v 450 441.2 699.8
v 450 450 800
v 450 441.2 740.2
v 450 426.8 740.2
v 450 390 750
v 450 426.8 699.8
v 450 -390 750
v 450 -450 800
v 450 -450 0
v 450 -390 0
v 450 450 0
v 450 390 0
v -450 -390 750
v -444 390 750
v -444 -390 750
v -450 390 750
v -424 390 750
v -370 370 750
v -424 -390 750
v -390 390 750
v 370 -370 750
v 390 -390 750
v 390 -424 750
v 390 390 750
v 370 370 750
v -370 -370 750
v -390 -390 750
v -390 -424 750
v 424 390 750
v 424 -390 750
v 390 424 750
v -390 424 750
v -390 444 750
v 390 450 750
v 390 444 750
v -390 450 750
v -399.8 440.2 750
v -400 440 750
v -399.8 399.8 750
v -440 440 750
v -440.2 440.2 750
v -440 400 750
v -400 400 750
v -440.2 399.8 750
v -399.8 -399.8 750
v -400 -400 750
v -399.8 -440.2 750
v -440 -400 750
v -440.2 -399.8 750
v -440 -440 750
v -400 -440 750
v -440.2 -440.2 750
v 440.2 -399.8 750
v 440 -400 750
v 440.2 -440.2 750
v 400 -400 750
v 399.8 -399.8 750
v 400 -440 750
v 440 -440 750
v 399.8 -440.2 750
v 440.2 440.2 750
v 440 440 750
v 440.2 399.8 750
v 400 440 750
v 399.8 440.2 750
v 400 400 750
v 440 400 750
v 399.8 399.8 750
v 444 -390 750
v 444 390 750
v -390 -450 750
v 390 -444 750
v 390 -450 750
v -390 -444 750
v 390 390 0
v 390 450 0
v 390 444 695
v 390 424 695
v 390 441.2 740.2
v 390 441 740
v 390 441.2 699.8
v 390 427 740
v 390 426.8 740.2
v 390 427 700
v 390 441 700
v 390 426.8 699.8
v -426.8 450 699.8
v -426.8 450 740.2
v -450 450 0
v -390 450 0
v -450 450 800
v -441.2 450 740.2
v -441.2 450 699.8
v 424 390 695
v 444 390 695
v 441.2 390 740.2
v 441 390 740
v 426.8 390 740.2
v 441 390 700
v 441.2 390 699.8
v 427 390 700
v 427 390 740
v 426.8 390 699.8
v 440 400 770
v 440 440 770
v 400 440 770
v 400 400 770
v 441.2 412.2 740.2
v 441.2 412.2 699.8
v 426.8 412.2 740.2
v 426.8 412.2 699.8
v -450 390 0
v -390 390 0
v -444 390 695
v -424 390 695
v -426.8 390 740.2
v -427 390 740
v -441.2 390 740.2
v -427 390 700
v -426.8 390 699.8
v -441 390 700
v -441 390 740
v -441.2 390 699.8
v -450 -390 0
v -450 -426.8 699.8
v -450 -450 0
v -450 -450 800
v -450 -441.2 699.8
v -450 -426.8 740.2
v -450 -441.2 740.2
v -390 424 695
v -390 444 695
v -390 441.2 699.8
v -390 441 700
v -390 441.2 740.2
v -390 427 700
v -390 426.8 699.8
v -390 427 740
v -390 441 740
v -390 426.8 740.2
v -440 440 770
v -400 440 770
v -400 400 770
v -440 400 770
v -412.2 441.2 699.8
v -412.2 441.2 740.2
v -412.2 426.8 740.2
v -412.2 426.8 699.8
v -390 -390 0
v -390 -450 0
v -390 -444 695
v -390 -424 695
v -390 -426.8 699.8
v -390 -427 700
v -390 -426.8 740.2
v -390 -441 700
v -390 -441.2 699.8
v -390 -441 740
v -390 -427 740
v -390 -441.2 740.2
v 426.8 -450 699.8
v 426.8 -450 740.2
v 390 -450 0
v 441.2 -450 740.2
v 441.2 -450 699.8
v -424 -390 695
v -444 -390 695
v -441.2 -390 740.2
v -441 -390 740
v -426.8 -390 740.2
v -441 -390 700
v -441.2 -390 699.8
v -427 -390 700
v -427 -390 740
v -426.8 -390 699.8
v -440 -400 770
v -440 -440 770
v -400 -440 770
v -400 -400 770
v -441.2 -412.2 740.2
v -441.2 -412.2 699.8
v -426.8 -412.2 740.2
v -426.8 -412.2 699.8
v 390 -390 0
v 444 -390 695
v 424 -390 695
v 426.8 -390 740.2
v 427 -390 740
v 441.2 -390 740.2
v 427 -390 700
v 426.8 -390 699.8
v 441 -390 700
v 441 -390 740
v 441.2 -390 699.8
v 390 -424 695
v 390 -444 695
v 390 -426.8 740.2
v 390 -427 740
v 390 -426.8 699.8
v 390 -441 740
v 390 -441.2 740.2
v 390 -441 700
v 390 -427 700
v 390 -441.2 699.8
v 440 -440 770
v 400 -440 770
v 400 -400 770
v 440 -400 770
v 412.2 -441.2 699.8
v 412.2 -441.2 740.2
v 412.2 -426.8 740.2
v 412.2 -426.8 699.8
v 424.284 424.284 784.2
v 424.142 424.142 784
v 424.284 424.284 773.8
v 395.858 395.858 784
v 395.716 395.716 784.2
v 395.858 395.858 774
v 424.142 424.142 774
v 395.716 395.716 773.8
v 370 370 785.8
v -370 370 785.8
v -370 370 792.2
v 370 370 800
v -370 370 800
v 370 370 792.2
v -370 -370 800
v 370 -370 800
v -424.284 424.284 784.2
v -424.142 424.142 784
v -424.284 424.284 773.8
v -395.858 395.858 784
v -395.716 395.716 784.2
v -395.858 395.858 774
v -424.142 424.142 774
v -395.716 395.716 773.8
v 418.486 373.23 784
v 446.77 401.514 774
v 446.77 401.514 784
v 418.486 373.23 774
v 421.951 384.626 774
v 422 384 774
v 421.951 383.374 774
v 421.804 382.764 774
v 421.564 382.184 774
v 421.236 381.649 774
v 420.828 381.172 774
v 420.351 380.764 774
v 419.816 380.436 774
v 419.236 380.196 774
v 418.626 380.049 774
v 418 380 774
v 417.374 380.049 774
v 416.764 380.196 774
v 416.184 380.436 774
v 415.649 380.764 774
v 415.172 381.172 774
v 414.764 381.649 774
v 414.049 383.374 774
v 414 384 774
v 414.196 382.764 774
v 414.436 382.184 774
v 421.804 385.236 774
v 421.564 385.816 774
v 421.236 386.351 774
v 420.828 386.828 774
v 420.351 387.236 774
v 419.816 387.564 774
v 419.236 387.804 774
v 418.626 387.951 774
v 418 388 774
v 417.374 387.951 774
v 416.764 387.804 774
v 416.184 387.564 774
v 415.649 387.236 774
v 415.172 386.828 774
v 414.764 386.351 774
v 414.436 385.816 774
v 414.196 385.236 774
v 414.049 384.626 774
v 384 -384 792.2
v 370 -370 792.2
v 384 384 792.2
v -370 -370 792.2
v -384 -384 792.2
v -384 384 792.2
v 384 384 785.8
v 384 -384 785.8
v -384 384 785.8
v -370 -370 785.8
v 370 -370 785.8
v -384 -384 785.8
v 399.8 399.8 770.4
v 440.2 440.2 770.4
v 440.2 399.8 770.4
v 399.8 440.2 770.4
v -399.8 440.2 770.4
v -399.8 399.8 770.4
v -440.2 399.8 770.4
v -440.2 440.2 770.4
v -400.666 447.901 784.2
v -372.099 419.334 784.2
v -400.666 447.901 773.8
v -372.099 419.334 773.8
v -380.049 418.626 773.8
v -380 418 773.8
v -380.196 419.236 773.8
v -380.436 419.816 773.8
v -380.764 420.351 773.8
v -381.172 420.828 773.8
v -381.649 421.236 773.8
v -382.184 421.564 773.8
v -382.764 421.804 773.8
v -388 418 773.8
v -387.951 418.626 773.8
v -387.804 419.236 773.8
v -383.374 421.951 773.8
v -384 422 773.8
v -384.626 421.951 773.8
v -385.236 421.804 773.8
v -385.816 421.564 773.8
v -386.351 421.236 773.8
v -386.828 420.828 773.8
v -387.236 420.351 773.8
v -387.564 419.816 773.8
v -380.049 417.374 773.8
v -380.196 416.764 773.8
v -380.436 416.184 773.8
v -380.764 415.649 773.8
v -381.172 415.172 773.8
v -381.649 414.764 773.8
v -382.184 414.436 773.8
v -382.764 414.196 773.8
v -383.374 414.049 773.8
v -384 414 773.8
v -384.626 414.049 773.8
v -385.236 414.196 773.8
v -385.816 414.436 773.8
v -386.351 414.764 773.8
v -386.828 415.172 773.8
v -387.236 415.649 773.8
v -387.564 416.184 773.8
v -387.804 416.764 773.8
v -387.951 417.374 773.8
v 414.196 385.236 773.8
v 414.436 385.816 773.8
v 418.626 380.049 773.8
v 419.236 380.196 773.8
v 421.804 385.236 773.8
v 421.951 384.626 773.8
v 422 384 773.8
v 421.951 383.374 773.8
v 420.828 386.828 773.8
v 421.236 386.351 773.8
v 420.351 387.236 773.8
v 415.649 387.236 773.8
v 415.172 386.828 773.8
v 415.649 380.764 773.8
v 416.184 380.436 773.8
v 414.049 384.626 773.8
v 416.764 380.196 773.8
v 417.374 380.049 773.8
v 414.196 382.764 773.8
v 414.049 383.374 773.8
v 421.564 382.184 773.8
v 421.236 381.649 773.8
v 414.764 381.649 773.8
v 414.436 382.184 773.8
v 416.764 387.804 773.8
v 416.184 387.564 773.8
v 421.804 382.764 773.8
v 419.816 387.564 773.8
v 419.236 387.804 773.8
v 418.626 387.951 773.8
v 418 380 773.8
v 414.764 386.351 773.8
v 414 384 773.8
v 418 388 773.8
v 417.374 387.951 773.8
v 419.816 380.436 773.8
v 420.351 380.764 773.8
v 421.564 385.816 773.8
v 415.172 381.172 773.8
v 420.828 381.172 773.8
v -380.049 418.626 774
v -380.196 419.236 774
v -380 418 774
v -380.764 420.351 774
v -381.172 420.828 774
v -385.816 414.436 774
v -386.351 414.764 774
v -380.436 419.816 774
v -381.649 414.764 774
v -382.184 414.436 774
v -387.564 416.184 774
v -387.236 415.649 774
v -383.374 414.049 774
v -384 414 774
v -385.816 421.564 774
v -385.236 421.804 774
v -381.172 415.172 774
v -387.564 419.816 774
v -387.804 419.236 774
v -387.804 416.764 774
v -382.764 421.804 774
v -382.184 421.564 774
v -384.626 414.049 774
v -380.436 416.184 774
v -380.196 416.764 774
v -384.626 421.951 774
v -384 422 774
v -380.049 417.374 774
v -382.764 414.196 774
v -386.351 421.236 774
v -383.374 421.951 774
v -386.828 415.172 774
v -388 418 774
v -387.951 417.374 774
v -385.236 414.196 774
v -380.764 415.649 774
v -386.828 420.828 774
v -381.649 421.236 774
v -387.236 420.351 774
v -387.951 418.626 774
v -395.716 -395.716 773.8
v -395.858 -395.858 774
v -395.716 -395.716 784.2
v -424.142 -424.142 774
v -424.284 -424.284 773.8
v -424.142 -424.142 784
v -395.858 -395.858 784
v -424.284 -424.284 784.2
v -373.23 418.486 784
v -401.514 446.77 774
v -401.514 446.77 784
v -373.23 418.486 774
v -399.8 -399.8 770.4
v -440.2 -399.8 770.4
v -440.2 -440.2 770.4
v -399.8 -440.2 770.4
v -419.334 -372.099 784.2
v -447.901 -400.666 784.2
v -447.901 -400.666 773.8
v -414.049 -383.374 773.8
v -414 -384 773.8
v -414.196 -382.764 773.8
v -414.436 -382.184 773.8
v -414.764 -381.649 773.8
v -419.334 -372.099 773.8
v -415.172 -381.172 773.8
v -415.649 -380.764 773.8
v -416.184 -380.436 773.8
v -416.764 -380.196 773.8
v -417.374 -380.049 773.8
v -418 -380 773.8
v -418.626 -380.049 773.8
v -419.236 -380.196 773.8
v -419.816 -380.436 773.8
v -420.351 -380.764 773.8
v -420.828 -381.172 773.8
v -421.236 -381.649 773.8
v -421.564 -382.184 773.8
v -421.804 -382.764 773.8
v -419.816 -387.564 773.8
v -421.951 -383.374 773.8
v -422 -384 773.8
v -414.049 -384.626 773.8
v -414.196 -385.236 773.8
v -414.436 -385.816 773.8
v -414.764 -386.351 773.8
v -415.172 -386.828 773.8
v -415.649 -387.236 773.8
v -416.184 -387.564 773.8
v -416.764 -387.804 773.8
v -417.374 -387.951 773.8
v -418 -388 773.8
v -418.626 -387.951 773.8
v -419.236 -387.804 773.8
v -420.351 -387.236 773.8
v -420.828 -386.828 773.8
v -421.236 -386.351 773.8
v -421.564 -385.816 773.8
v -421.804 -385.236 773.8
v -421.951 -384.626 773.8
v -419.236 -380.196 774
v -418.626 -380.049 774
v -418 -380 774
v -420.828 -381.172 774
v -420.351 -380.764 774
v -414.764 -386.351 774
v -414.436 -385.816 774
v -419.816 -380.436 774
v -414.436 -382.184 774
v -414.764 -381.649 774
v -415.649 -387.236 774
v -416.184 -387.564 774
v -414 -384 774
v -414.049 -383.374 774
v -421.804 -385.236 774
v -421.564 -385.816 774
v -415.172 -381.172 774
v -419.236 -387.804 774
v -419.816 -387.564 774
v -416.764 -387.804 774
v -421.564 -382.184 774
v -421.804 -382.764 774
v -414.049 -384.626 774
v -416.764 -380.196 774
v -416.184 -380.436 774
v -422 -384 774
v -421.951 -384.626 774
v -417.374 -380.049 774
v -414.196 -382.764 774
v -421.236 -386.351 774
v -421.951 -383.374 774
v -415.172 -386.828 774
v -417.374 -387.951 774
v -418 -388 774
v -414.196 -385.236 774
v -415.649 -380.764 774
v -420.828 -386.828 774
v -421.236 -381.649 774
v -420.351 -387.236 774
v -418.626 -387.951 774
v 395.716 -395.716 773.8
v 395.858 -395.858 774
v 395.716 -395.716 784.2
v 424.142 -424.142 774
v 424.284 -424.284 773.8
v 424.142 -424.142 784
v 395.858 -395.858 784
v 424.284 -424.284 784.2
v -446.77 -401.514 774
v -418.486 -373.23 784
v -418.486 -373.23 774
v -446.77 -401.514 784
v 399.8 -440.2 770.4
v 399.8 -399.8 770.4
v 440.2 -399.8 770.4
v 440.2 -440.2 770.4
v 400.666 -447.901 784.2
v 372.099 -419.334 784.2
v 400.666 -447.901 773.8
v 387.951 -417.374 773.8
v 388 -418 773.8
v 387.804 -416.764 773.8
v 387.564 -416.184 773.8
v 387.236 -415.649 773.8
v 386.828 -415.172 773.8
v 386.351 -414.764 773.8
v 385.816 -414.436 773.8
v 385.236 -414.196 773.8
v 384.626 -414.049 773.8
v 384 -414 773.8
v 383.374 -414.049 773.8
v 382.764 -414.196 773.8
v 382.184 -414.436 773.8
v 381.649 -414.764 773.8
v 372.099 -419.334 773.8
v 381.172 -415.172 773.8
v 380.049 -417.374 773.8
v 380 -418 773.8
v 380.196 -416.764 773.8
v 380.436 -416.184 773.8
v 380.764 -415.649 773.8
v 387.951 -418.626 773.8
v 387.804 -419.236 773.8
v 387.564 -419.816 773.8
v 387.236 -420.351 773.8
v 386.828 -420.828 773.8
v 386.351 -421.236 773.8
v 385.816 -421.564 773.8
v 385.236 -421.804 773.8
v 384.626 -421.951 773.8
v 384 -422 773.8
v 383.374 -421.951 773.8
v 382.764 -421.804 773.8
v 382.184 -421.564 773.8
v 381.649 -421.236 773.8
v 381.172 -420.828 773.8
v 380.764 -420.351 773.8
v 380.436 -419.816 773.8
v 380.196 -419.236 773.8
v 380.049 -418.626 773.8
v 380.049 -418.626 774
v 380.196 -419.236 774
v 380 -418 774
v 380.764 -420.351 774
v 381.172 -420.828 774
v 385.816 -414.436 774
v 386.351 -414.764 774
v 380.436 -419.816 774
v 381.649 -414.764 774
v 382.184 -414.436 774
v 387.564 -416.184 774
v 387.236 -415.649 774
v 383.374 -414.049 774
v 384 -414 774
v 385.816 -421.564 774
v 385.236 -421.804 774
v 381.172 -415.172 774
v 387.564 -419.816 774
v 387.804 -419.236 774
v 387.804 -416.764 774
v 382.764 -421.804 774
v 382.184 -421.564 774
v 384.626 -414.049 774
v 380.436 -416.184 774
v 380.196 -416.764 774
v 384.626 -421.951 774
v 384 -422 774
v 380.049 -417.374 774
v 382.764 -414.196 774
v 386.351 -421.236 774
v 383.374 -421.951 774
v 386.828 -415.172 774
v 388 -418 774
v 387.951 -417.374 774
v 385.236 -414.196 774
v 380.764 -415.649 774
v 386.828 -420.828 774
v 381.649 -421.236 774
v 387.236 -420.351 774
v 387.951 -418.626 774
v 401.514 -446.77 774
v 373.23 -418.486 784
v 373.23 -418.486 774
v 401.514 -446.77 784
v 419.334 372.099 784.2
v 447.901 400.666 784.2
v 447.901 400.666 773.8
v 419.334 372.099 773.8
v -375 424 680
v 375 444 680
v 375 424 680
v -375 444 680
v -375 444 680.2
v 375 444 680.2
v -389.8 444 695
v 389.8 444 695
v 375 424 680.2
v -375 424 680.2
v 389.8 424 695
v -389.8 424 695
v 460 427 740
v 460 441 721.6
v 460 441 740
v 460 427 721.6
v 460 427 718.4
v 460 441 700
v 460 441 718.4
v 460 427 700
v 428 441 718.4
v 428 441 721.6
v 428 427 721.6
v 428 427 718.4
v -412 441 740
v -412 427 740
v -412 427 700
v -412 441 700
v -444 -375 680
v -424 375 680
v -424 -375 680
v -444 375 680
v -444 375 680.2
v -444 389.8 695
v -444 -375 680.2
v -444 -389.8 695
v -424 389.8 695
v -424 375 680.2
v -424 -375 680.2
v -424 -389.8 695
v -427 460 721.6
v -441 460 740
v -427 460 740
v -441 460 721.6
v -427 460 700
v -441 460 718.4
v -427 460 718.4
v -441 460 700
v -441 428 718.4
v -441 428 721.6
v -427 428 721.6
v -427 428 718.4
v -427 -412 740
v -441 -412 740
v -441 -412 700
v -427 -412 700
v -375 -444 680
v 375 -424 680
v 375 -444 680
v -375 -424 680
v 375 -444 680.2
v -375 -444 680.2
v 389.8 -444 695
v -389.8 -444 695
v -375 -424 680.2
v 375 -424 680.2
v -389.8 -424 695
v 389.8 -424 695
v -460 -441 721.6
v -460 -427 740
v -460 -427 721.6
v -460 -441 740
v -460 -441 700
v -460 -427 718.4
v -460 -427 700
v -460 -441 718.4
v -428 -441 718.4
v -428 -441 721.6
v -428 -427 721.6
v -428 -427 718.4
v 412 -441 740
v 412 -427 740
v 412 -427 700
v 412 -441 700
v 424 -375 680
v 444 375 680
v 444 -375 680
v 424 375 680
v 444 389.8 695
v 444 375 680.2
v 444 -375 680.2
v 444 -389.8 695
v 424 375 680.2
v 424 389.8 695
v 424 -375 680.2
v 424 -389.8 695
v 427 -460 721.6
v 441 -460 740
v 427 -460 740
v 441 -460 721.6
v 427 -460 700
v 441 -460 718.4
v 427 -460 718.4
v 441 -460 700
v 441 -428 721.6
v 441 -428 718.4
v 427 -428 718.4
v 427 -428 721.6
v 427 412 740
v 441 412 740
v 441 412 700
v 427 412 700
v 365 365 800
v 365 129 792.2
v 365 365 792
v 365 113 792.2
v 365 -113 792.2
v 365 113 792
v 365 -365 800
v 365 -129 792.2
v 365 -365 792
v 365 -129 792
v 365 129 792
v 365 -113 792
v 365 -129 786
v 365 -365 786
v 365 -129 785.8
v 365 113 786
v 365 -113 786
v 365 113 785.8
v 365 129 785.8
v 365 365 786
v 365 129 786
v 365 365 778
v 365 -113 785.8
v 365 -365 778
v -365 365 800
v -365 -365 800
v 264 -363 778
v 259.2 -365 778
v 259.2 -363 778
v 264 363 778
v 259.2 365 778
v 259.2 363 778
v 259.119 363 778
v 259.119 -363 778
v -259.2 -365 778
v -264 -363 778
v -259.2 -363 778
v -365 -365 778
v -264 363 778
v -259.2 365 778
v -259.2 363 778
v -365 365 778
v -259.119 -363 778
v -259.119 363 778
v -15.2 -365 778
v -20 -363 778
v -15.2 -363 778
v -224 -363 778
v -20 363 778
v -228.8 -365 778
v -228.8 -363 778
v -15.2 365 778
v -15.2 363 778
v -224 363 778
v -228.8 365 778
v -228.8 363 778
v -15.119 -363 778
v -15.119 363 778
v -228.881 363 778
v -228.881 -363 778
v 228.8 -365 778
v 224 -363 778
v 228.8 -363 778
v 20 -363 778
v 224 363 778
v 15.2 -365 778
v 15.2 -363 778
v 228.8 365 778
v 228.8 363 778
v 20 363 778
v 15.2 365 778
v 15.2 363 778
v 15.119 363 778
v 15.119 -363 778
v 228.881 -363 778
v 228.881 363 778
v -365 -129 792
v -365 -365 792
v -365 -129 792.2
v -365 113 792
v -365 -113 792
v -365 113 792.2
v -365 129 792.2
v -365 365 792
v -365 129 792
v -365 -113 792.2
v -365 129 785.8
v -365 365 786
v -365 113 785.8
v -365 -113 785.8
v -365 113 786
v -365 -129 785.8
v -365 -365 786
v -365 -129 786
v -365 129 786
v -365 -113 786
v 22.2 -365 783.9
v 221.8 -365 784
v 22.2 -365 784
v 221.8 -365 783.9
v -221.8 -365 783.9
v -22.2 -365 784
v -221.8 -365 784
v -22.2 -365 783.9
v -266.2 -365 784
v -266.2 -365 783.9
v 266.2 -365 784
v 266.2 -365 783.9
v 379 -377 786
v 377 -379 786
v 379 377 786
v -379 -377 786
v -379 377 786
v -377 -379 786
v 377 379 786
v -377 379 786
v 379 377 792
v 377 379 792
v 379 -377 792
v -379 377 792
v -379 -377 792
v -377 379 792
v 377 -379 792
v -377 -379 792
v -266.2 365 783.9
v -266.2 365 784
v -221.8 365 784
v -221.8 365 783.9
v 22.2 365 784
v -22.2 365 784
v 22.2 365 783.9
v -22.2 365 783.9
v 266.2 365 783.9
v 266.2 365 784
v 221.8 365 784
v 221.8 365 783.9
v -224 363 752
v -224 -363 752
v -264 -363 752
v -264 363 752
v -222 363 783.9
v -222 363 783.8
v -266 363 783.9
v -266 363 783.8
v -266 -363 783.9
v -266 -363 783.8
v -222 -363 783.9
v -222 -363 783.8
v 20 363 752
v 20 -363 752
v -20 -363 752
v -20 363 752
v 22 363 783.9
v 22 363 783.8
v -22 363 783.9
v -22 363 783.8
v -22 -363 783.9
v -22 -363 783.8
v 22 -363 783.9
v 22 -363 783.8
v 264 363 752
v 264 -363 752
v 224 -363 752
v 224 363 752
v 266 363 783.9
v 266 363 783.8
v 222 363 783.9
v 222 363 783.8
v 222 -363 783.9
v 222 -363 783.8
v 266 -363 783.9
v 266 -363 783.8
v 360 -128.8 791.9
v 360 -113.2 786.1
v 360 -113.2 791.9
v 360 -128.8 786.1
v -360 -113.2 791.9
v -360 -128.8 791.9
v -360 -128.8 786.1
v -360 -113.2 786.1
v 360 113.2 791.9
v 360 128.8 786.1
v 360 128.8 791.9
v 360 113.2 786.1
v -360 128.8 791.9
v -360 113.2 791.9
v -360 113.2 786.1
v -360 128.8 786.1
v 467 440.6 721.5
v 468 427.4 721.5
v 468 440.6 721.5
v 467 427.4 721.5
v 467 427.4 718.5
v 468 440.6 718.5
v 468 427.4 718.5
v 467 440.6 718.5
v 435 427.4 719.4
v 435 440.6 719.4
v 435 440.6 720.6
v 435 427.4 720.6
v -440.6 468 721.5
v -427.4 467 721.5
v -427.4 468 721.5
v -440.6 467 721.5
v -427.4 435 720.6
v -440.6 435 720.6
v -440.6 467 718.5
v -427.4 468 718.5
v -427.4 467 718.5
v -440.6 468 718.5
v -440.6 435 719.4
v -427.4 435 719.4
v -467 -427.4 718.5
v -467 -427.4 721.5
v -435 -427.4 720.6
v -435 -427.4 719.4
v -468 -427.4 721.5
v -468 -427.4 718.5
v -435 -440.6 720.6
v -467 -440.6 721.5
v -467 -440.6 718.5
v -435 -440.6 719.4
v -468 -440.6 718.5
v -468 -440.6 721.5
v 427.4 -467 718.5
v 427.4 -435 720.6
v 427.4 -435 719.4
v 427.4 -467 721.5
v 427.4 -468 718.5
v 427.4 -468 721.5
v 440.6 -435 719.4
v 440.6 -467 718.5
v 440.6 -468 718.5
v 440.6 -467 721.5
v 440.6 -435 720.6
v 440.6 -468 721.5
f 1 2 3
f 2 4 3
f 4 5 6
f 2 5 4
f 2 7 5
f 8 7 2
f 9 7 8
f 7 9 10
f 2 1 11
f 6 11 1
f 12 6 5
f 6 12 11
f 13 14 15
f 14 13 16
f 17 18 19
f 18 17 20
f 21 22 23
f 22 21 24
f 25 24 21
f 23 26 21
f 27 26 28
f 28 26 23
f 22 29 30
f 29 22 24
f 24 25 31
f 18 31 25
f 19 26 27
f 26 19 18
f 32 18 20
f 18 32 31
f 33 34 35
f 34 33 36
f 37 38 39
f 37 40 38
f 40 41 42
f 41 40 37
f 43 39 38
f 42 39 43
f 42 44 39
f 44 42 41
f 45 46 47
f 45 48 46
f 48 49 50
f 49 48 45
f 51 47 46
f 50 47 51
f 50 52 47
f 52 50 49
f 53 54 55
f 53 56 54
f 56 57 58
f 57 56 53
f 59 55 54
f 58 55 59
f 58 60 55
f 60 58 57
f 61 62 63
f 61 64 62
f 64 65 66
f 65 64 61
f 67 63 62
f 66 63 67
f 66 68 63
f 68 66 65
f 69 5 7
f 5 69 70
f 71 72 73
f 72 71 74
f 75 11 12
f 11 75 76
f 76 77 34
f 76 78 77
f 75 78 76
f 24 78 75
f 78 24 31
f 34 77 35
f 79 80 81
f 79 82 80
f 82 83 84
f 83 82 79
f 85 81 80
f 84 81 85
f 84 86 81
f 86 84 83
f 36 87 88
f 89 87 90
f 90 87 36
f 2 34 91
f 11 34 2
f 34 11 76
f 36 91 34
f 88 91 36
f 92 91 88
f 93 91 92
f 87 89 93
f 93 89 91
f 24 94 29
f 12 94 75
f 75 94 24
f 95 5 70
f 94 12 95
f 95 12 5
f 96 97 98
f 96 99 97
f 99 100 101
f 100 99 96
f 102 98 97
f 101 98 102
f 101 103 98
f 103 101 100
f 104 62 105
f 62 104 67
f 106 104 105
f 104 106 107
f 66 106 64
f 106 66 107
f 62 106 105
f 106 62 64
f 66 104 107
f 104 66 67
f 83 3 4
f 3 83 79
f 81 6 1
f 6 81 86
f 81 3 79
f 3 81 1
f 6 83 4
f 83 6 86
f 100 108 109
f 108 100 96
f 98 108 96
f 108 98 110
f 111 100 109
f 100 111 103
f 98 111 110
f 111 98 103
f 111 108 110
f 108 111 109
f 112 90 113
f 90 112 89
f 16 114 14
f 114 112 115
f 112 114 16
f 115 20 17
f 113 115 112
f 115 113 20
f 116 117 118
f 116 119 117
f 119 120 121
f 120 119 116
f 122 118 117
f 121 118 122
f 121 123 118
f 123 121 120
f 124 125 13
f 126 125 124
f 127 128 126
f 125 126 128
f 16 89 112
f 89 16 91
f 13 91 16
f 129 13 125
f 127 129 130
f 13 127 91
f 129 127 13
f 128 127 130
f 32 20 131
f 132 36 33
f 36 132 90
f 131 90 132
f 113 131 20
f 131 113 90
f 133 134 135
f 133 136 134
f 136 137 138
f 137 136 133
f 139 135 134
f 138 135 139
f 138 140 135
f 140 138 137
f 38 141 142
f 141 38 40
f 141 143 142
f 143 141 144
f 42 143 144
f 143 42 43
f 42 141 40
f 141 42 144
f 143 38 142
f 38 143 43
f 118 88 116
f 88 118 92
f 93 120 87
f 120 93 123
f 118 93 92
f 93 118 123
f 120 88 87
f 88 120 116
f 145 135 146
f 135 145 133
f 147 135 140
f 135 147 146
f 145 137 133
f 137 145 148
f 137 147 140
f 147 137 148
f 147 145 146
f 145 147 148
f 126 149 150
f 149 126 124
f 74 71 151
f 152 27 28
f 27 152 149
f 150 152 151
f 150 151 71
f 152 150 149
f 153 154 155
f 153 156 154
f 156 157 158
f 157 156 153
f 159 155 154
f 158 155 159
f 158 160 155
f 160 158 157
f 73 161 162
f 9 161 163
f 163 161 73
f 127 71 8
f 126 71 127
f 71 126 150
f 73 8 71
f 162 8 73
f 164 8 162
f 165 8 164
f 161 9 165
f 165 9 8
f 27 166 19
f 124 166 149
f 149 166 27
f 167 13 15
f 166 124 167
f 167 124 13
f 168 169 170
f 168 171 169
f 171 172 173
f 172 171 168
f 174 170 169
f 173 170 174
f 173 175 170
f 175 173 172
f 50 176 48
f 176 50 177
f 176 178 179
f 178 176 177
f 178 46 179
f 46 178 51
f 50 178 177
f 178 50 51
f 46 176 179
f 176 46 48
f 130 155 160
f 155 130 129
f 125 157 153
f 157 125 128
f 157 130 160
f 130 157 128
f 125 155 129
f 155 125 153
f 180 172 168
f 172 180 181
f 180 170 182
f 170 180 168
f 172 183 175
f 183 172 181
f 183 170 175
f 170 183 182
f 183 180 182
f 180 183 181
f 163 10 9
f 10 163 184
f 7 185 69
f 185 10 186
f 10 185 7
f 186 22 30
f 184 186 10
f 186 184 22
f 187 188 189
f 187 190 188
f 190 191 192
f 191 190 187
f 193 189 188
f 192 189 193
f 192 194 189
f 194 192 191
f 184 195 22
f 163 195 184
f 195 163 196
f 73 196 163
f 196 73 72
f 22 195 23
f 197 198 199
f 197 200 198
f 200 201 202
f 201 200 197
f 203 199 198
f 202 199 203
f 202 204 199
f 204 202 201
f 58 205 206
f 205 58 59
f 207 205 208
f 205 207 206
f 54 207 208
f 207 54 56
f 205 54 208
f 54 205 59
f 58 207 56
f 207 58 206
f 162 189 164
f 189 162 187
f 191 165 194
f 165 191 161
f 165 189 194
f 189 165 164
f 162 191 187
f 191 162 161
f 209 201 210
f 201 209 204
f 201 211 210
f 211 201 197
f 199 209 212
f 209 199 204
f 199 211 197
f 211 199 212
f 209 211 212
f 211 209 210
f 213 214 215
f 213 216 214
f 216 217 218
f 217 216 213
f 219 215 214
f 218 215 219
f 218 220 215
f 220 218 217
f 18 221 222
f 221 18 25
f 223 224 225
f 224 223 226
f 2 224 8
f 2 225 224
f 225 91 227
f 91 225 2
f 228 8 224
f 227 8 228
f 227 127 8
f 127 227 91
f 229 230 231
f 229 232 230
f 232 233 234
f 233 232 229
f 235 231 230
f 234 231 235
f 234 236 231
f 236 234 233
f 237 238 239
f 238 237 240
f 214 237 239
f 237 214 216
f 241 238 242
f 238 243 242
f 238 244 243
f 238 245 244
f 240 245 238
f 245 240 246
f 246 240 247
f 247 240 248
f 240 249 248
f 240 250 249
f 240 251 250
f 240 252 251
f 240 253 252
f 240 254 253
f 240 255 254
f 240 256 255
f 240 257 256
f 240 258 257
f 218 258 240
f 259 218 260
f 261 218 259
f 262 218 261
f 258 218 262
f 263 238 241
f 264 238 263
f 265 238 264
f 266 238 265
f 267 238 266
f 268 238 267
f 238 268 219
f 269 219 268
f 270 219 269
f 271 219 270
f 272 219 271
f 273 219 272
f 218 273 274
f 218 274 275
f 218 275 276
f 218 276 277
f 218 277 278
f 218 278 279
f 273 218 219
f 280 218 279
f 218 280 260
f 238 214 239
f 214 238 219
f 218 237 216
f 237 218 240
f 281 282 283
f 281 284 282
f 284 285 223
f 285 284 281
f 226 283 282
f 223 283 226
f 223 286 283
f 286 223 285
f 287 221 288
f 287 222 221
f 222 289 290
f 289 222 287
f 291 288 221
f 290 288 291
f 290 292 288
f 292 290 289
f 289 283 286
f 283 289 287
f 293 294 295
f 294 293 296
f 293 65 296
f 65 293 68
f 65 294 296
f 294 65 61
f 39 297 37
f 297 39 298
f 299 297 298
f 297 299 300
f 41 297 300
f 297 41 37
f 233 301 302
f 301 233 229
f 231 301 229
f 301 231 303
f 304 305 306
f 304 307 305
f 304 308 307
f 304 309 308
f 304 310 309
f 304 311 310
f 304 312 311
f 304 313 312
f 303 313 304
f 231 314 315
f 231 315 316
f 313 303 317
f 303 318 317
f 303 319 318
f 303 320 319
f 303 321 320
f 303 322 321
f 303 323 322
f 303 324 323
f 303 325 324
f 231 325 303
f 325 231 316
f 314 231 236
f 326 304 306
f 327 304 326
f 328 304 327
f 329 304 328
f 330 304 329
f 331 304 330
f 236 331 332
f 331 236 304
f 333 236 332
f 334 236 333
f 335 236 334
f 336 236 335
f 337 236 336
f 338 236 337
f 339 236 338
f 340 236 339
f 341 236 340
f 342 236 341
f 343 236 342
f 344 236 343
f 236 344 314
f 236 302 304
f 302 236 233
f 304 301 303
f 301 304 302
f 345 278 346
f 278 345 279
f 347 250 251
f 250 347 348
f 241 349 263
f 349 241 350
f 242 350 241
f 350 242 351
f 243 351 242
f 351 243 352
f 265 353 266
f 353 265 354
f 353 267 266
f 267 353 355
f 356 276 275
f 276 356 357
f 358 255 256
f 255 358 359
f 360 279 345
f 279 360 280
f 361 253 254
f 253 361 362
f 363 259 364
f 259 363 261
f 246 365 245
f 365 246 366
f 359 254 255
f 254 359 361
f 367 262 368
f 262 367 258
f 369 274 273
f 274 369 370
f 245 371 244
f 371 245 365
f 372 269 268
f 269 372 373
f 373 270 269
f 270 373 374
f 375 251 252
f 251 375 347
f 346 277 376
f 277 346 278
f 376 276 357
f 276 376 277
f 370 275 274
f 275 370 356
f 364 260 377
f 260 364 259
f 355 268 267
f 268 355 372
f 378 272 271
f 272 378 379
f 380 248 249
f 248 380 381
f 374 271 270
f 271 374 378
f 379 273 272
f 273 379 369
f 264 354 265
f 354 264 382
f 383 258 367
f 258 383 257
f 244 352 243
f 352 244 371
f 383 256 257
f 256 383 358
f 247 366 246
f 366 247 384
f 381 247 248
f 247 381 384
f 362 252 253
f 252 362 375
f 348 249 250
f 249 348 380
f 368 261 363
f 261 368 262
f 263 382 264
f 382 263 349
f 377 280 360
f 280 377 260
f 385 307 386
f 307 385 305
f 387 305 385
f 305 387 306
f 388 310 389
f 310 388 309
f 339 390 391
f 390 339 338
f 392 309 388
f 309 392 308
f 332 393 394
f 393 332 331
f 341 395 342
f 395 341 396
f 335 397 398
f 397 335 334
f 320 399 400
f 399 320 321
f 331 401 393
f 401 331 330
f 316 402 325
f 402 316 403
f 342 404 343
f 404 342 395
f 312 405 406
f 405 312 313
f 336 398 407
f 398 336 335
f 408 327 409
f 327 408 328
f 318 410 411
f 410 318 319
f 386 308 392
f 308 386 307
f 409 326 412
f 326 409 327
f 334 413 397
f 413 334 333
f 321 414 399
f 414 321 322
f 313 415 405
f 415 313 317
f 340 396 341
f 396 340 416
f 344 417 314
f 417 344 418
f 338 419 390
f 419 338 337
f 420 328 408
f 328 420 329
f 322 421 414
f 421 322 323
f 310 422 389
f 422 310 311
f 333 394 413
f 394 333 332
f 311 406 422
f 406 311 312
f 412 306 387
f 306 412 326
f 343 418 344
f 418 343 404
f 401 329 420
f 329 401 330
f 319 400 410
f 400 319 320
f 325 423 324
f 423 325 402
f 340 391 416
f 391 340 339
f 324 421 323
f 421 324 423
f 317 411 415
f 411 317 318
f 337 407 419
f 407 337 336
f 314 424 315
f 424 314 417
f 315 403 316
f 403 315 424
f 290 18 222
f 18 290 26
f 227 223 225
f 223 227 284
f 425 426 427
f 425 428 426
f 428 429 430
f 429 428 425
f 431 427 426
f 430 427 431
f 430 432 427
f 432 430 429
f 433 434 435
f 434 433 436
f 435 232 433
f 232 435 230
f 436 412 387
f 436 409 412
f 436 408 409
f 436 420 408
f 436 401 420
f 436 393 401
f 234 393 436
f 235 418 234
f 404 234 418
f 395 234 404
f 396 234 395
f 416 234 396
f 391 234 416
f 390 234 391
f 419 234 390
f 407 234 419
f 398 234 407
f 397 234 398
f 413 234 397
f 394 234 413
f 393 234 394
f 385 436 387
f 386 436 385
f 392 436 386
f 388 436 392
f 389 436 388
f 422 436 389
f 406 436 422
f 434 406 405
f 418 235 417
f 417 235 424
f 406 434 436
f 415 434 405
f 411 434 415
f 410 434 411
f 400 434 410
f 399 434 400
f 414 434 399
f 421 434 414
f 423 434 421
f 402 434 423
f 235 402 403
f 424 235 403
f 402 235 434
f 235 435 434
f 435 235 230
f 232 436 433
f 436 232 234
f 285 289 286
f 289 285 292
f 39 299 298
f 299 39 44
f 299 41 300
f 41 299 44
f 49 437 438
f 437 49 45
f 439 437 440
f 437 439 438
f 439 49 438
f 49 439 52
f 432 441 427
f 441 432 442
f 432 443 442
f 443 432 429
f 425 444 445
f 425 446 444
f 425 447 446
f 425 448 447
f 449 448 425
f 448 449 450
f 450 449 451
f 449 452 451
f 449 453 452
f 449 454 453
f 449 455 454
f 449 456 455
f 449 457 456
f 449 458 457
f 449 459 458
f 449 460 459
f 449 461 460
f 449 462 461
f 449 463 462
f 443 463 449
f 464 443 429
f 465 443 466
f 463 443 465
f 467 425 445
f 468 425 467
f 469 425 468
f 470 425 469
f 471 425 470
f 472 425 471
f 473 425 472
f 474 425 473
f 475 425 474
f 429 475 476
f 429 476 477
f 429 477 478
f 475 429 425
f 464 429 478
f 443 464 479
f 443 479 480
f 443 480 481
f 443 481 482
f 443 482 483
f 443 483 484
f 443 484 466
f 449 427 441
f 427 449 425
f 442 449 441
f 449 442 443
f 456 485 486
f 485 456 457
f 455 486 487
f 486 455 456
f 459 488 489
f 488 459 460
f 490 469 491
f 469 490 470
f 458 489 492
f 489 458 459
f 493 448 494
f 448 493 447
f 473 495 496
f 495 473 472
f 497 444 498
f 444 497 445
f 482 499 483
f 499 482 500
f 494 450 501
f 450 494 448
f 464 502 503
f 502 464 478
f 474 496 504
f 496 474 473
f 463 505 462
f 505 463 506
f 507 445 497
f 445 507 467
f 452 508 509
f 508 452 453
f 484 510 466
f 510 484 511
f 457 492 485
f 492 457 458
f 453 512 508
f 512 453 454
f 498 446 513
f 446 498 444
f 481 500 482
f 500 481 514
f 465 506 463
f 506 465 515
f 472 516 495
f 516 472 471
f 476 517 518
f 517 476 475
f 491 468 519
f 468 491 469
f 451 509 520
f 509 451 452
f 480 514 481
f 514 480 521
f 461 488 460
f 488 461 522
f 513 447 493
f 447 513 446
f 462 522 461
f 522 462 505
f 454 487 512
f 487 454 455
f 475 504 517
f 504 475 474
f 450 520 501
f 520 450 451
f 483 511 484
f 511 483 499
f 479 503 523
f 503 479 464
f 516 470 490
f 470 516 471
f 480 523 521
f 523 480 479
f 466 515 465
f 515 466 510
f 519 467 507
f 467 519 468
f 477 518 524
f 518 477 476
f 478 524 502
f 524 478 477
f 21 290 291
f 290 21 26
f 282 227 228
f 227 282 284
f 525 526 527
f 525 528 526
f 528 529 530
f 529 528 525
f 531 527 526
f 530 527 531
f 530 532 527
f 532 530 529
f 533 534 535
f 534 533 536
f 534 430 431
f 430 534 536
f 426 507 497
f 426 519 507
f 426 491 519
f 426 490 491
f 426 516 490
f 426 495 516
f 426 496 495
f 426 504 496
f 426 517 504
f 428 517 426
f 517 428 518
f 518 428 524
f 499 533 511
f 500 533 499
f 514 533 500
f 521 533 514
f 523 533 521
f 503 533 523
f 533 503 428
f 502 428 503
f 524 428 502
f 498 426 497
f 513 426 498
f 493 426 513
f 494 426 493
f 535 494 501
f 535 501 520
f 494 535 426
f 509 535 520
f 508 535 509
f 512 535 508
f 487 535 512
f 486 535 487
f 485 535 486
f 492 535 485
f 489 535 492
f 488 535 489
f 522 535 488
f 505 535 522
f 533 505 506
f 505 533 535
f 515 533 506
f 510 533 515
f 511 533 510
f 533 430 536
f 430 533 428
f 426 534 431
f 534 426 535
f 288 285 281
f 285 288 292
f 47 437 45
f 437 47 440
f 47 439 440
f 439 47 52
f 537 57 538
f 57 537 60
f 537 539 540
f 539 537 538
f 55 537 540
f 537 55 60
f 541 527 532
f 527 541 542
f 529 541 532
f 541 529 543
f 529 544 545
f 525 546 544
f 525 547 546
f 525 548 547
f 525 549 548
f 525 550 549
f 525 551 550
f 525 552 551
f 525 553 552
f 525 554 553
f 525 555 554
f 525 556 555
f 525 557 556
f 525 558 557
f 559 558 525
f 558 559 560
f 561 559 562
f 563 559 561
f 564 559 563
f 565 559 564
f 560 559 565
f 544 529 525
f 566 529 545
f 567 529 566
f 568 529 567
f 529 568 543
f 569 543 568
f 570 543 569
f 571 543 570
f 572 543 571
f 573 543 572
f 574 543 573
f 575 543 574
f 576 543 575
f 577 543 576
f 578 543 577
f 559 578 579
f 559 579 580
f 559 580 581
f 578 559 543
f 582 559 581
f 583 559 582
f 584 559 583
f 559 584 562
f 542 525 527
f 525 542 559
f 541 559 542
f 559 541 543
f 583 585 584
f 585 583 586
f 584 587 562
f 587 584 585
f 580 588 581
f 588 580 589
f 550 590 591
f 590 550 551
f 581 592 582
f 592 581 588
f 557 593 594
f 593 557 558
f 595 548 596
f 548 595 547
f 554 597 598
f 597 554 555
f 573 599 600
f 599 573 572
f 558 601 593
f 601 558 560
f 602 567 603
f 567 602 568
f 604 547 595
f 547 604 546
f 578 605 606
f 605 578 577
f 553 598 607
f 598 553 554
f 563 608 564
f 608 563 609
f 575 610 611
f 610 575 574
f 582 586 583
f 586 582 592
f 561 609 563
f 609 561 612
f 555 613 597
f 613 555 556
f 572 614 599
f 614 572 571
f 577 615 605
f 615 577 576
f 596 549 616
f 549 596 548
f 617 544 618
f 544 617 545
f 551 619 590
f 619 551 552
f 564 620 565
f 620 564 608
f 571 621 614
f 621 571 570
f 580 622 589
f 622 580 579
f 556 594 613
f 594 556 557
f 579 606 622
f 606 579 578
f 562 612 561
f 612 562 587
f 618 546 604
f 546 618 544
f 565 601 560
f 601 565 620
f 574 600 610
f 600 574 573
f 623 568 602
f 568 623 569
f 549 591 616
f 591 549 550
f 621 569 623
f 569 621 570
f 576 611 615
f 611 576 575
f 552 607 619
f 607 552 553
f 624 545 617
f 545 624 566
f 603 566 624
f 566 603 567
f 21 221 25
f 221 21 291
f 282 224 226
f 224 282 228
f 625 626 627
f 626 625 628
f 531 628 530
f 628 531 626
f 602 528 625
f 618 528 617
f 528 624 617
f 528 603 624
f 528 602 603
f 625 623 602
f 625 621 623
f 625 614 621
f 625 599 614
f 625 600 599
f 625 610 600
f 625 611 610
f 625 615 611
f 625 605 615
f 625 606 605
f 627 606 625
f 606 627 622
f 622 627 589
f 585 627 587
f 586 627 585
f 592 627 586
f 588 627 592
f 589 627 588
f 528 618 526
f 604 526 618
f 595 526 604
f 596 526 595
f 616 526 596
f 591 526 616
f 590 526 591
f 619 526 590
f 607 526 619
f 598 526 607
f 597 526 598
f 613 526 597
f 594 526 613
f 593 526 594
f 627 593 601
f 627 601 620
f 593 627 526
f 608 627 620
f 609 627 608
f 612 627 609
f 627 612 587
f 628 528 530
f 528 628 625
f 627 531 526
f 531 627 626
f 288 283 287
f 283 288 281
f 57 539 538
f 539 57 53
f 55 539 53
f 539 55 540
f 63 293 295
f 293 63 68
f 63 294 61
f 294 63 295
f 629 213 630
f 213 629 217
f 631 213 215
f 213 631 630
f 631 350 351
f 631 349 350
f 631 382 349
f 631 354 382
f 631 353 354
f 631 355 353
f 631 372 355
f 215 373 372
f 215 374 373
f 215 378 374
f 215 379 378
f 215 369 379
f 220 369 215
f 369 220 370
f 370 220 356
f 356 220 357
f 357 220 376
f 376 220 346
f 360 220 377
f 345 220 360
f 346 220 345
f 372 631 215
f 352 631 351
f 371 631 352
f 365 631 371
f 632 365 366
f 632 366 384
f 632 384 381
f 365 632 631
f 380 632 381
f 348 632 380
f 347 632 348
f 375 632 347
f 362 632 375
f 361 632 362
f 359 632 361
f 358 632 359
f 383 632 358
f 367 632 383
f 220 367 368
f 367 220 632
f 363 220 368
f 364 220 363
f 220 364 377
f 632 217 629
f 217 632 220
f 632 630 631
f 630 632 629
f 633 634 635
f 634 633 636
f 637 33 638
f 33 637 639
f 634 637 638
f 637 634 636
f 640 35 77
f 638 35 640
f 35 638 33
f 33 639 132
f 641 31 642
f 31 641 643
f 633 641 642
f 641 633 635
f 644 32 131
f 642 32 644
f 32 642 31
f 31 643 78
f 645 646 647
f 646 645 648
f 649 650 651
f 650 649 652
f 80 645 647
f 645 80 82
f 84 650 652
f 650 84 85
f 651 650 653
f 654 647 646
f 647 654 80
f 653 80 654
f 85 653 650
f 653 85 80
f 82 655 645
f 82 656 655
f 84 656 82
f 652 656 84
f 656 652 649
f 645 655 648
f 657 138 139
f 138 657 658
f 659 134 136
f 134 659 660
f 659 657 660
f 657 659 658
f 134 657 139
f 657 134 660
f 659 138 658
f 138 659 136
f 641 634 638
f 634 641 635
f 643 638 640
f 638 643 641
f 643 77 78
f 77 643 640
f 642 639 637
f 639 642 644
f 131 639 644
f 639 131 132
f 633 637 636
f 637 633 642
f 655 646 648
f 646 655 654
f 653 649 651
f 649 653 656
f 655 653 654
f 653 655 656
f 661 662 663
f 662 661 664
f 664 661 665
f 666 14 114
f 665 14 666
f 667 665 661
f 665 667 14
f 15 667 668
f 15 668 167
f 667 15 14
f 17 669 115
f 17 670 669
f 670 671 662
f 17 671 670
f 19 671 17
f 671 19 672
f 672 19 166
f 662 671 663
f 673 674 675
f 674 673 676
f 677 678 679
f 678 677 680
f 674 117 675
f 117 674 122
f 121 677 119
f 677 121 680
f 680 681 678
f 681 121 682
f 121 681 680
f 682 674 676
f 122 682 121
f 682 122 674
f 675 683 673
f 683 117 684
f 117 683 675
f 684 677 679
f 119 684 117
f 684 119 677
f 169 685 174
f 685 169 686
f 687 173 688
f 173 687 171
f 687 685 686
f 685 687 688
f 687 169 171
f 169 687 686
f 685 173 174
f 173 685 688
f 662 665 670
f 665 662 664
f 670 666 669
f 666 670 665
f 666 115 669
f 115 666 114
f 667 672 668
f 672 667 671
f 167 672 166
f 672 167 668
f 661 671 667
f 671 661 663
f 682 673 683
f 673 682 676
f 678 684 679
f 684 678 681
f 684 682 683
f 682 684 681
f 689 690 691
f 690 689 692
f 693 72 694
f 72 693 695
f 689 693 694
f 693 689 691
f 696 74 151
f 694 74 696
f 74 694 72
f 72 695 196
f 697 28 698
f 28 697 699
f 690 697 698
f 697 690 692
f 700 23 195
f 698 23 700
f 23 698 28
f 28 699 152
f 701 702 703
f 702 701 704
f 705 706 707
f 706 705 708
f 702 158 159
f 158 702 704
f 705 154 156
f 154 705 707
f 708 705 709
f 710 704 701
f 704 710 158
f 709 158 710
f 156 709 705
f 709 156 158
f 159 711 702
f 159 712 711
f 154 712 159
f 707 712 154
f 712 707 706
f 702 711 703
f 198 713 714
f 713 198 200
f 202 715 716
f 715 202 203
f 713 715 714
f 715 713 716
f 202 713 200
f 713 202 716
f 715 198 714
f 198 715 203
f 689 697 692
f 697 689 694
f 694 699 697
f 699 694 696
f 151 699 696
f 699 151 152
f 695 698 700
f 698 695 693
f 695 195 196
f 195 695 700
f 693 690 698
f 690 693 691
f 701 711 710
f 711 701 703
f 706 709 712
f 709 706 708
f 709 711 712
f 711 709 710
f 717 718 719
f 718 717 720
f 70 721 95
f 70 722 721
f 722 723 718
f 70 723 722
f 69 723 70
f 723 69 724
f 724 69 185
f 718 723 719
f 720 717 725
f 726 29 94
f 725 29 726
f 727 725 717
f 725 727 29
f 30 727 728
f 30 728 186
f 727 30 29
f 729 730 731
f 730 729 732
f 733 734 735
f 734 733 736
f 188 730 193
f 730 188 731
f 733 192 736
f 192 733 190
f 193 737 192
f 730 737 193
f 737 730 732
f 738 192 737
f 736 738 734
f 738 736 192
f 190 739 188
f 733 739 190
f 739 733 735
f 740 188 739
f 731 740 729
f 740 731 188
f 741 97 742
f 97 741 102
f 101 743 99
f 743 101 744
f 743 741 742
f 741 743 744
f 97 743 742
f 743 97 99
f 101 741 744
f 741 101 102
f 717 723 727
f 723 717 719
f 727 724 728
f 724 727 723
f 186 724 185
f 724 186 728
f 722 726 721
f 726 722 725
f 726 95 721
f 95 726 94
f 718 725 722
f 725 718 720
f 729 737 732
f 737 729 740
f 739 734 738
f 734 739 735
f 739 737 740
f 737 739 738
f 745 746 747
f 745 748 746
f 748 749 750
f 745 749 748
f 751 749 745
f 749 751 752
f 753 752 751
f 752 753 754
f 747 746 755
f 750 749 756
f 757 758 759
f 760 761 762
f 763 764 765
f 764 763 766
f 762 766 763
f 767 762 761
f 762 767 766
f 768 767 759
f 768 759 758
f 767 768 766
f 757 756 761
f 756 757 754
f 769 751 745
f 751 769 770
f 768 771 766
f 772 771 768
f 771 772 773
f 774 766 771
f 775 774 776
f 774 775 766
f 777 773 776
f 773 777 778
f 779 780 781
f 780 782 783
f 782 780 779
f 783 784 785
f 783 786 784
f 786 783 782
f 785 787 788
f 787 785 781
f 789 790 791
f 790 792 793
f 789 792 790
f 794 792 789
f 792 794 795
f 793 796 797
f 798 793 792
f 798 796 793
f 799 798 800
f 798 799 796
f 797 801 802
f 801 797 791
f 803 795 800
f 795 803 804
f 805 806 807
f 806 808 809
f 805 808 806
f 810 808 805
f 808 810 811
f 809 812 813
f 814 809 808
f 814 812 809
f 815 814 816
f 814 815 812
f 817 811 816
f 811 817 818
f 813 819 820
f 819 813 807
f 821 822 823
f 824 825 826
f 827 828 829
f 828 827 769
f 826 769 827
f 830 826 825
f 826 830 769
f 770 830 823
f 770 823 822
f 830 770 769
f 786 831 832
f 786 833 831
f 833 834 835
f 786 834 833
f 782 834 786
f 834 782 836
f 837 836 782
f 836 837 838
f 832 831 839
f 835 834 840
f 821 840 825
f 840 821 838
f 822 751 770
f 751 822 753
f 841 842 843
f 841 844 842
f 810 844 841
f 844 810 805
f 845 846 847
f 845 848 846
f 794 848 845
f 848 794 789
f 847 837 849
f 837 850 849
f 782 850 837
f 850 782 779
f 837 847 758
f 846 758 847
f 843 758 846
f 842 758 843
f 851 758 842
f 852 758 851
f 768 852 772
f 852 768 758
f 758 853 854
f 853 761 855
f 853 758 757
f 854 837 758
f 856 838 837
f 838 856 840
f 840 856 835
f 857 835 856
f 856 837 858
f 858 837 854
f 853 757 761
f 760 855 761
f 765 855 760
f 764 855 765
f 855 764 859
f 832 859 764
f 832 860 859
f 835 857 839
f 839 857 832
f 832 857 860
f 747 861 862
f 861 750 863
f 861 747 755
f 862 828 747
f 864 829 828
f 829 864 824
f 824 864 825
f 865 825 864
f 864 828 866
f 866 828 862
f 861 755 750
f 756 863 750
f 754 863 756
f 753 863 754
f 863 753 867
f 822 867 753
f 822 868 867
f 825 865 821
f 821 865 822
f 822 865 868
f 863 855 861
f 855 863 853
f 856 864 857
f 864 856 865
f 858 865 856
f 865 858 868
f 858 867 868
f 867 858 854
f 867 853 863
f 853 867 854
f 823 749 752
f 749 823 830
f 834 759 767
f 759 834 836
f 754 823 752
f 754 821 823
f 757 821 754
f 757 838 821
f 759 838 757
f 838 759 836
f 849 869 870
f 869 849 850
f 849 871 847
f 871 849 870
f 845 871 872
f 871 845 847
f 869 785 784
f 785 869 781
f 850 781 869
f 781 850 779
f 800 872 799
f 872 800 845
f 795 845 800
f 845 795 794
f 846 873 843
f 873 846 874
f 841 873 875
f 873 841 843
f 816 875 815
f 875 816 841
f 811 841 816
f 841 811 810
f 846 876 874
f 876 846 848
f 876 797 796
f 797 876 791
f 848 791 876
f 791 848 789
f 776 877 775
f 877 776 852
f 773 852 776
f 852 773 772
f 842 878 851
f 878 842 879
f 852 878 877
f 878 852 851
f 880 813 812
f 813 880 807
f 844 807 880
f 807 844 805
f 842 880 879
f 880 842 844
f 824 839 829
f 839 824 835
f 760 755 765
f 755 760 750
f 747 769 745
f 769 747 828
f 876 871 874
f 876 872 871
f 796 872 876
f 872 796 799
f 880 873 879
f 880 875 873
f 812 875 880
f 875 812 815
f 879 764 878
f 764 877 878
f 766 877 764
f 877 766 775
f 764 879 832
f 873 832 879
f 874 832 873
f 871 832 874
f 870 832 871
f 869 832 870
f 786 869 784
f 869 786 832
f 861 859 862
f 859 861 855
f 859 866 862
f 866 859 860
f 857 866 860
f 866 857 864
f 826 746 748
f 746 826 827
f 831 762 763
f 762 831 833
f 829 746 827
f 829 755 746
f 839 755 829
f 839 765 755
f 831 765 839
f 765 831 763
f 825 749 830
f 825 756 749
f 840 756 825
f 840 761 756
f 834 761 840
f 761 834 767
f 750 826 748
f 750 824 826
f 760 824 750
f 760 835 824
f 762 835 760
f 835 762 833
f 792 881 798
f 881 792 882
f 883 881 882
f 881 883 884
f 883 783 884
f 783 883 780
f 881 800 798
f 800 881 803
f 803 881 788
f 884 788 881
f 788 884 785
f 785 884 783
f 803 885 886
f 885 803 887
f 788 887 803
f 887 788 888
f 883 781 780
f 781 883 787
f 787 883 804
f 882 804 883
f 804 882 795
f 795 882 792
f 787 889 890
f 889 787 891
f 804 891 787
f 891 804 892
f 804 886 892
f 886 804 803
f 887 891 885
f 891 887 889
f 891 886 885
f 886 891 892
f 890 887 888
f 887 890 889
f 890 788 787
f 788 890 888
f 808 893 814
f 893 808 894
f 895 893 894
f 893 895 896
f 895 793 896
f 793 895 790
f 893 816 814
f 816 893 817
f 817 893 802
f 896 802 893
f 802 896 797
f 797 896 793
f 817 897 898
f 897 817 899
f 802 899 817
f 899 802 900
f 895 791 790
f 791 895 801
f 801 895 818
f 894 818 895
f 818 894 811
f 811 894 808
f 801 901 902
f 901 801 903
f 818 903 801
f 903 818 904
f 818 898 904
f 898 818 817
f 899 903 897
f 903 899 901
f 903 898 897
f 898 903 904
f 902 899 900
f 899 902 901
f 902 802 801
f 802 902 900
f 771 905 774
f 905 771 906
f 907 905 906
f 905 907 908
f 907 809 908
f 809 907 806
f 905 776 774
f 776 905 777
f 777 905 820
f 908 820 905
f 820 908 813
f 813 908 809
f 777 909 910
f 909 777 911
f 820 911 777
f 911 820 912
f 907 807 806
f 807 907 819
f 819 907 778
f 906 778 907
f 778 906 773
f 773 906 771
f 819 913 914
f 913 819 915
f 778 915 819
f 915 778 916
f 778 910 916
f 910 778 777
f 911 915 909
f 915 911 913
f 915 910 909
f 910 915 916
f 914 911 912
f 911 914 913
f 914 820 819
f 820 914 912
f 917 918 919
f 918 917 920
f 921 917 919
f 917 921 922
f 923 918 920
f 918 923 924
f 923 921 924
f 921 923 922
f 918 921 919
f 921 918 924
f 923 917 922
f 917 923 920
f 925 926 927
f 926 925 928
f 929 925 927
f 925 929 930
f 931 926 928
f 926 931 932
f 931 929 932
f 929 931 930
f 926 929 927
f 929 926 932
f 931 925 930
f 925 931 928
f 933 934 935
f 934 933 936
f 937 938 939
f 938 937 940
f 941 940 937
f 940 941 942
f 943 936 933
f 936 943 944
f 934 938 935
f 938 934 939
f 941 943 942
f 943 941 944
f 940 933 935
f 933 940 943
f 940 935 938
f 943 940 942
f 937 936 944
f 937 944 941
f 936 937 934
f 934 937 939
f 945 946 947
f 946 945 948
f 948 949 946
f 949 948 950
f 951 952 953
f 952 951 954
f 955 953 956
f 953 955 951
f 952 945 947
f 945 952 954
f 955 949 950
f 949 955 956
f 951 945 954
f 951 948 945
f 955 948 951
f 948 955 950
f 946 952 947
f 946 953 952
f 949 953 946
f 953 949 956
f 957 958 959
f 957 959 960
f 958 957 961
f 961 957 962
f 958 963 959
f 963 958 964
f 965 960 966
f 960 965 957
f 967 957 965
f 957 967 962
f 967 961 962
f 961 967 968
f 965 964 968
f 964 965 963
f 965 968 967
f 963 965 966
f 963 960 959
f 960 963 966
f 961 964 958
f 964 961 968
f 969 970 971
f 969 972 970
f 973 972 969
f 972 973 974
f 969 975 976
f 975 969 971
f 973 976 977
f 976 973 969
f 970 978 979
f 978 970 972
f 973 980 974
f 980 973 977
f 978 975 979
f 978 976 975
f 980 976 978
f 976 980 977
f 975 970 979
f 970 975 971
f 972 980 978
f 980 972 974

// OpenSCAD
// file: parts.scad
$fn=40;

// ---- 桌腿 ----

module leg(){
  difference(){
    union(){
      translate([390.000,390.000,0.000]) cube([60.000,60.000,750.000]);
      translate([400.000,400.000,750.000]) cube([40.000,40.000,20.000]);
    }
    // 牙板透榫槽（沿 +x，+y 侧牙板 A 端穿入）
    translate([389.000,426.800,699.800]) cube([62.000,14.400,40.400]);
    // 牙板闷榫槽（沿 +y，+x 侧牙板 B 端）
    translate([426.800,389.000,699.800]) cube([14.400,23.200,40.400]);
  }
}

// ---- 边框 ----

module rail(){
  difference(){
    union(){
      translate([0,0,750]) linear_extrude(height=50) polygon(points=[[-370,370],[370,370],[450.0,450.0],[-450.0,450.0]]);
      translate([420.607,399.393,779.0]) rotate([0,0,-45]) cube([34,40,10],center=true);
    }
    // 面板槽：全长开通至 45° 端面（角部两框的槽合起来成 L 形）
    translate([-450.000,370.000,785.800]) cube([900.000,14.000,6.400]);
    // 腿顶榫卯（两端各半，合起来 40x40x20）
    translate([399.800,399.800,750.000]) cube([40.400,40.400,20.400]);
    translate([-440.200,399.800,750.000]) cube([40.400,40.400,20.400]);
    // 格角暗榫卯
    translate([-398.545,421.455,779.0]) rotate([0,0,45]) cube([34.4,40.4,10.4],center=true);
    // 竹销孔：+x 端穿暗榫，-x 端穿本体
    translate([418,384,750]) cylinder(h=34,r=4.0,$fn=40);
    translate([-384,418,750]) cylinder(h=34,r=4.0,$fn=40);
  }
}

// ---- 牙板 ----

module apron(){
  difference(){
    union(){
      translate([-390.000,424.000,680.000]) cube([780.000,20.000,70.000]);
      // A 端：透榫（390..460）
      translate([390.000,427.000,700.000]) cube([70.000,14.000,40.000]);
      // B 端：闷榫（-412..-390）
      translate([-412.000,427.000,700.000]) cube([22.000,14.000,40.000]);
    }
    hull(){ translate([375.000,423.500,680.000]) cube([15.000,21.000,0.200]); translate([389.800,423.500,680.000]) cube([0.200,21.000,15.000]); }
    hull(){ translate([-390.000,423.500,680.000]) cube([15.000,21.000,0.200]); translate([-390.000,423.500,680.000]) cube([0.200,21.000,15.000]); }
    // 透榫楔槽（横槽，撑开榫头上下两片）
    translate([428.000,426.900,718.400]) cube([32.200,14.200,3.200]);
  }
}

// ---- 面板-边板 ----

module panel_outer(){
  difference(){
    union(){
      translate([-365.000,-365.000,778.000]) cube([730.000,244.000,22.000]);
      translate([0,0,786]) linear_extrude(height=6) polygon(points=[[-379,-121],[-379,-377],[-377,-379],[377,-379],[379,-377],[379,-121],[365,-121],[365,-365],[-365,-365],[-365,-121]]);
    }
    // 内侧龙凤榫槽（向板内 8 深：y -129..-121）
    translate([-365.000,-129.000,785.800]) cube([730.000,8.000,6.400]);
    // 穿带燕尾槽
    hull(){ translate([-259.200,-365.000,778.000]) cube([30.400,244.000,0.100]); translate([-266.200,-365.000,783.900]) cube([44.400,244.000,0.100]); }
    hull(){ translate([-15.200,-365.000,778.000]) cube([30.400,244.000,0.100]); translate([-22.200,-365.000,783.900]) cube([44.400,244.000,0.100]); }
    hull(){ translate([228.800,-365.000,778.000]) cube([30.400,244.000,0.100]); translate([221.800,-365.000,783.900]) cube([44.400,244.000,0.100]); }
  }
}

// ---- 面板-中板 ----

module panel_middle(){
  difference(){
    union(){
      translate([-365.000,-121.000,778.000]) cube([730.000,242.000,22.000]);
      translate([365.000,-121.000,786.000]) cube([14.000,242.000,6.000]);
      translate([-379.000,-121.000,786.000]) cube([14.000,242.000,6.000]);
    }
    // 两侧龙凤榫槽（各向板内 8 深）
    translate([-365.000,-121.000,785.800]) cube([730.000,8.000,6.400]);
    translate([-365.000,113.000,785.800]) cube([730.000,8.000,6.400]);
    hull(){ translate([-259.200,-121.000,778.000]) cube([30.400,242.000,0.100]); translate([-266.200,-121.000,783.900]) cube([44.400,242.000,0.100]); }
    hull(){ translate([-15.200,-121.000,778.000]) cube([30.400,242.000,0.100]); translate([-22.200,-121.000,783.900]) cube([44.400,242.000,0.100]); }
    hull(){ translate([228.800,-121.000,778.000]) cube([30.400,242.000,0.100]); translate([221.800,-121.000,783.900]) cube([44.400,242.000,0.100]); }
  }
}

// ---- 穿带 ----

module cleat(){
  union(){
    translate([-20.000,-363.000,752.000]) cube([40.000,726.000,26.000]);
    hull(){
      translate([-15.000,-363.000,777.900]) cube([30.000,726.000,0.050]);
      translate([-22.000,-363.000,783.800]) cube([44.000,726.000,0.100]);
    }
  }
}

// ---- 穿簧 ----
module spline(){ translate([-360.000,-7.800,786.100]) cube([720.000,15.600,5.800]); }
// ---- 木楔 ----
module wedge(){ hull(){ translate([435.000,427.400,719.400]) cube([1.000,13.200,1.200]); translate([467.000,427.400,718.500]) cube([1.000,13.200,3.000]); } }
// ---- 竹销 ----
module pin(){ translate([0,0,750]) cylinder(h=34,r=4.0,$fn=40); }
// main file
include <parts.scad>
color([0.42,0.28,0.16]) translate([0,0,0]) rotate([0,0,0]) leg();
color([0.42,0.28,0.16]) translate([0,0,0]) rotate([0,0,90]) leg();
color([0.42,0.28,0.16]) translate([0,0,0]) rotate([0,0,180]) leg();
color([0.42,0.28,0.16]) translate([0,0,0]) rotate([0,0,270]) leg();
color([0.54,0.37,0.21]) translate([0,0,0]) rotate([0,0,0]) rail();
color([0.54,0.37,0.21]) translate([0,0,0]) rotate([0,0,90]) rail();
color([0.54,0.37,0.21]) translate([0,0,0]) rotate([0,0,180]) rail();
color([0.54,0.37,0.21]) translate([0,0,0]) rotate([0,0,270]) rail();
color([0.49,0.33,0.19]) translate([0,0,0]) rotate([0,0,0]) apron();
color([0.49,0.33,0.19]) translate([0,0,0]) rotate([0,0,90]) apron();
color([0.49,0.33,0.19]) translate([0,0,0]) rotate([0,0,180]) apron();
color([0.49,0.33,0.19]) translate([0,0,0]) rotate([0,0,270]) apron();
color([0.82,0.66,0.45]) translate([0,0,0]) rotate([0,0,0]) panel_outer();
color([0.82,0.66,0.45]) translate([0,0,0]) rotate([0,0,180]) panel_outer();
color([0.85,0.7,0.49]) translate([0,0,0]) rotate([0,0,0]) panel_middle();
color([0.62,0.44,0.26]) translate([-244,0,0]) rotate([0,0,0]) cleat();
color([0.62,0.44,0.26]) translate([0,0,0]) rotate([0,0,0]) cleat();
color([0.62,0.44,0.26]) translate([244,0,0]) rotate([0,0,0]) cleat();
color([0.88,0.78,0.58]) translate([0,-121,0]) rotate([0,0,0]) spline();
color([0.88,0.78,0.58]) translate([0,121,0]) rotate([0,0,0]) spline();
color([0.3,0.19,0.1]) translate([0,0,0]) rotate([0,0,0]) wedge();
color([0.3,0.19,0.1]) translate([0,0,0]) rotate([0,0,90]) wedge();
color([0.3,0.19,0.1]) translate([0,0,0]) rotate([0,0,180]) wedge();
color([0.3,0.19,0.1]) translate([0,0,0]) rotate([0,0,270]) wedge();
color([0.86,0.8,0.55]) translate([418,384,0]) rotate([0,0,0]) pin();
color([0.86,0.8,0.55]) translate([-384,418,0]) rotate([0,0,0]) pin();
color([0.86,0.8,0.55]) translate([-418,-384,0]) rotate([0,0,0]) pin();
color([0.86,0.8,0.55]) translate([384,-418,0]) rotate([0,0,0]) pin();
